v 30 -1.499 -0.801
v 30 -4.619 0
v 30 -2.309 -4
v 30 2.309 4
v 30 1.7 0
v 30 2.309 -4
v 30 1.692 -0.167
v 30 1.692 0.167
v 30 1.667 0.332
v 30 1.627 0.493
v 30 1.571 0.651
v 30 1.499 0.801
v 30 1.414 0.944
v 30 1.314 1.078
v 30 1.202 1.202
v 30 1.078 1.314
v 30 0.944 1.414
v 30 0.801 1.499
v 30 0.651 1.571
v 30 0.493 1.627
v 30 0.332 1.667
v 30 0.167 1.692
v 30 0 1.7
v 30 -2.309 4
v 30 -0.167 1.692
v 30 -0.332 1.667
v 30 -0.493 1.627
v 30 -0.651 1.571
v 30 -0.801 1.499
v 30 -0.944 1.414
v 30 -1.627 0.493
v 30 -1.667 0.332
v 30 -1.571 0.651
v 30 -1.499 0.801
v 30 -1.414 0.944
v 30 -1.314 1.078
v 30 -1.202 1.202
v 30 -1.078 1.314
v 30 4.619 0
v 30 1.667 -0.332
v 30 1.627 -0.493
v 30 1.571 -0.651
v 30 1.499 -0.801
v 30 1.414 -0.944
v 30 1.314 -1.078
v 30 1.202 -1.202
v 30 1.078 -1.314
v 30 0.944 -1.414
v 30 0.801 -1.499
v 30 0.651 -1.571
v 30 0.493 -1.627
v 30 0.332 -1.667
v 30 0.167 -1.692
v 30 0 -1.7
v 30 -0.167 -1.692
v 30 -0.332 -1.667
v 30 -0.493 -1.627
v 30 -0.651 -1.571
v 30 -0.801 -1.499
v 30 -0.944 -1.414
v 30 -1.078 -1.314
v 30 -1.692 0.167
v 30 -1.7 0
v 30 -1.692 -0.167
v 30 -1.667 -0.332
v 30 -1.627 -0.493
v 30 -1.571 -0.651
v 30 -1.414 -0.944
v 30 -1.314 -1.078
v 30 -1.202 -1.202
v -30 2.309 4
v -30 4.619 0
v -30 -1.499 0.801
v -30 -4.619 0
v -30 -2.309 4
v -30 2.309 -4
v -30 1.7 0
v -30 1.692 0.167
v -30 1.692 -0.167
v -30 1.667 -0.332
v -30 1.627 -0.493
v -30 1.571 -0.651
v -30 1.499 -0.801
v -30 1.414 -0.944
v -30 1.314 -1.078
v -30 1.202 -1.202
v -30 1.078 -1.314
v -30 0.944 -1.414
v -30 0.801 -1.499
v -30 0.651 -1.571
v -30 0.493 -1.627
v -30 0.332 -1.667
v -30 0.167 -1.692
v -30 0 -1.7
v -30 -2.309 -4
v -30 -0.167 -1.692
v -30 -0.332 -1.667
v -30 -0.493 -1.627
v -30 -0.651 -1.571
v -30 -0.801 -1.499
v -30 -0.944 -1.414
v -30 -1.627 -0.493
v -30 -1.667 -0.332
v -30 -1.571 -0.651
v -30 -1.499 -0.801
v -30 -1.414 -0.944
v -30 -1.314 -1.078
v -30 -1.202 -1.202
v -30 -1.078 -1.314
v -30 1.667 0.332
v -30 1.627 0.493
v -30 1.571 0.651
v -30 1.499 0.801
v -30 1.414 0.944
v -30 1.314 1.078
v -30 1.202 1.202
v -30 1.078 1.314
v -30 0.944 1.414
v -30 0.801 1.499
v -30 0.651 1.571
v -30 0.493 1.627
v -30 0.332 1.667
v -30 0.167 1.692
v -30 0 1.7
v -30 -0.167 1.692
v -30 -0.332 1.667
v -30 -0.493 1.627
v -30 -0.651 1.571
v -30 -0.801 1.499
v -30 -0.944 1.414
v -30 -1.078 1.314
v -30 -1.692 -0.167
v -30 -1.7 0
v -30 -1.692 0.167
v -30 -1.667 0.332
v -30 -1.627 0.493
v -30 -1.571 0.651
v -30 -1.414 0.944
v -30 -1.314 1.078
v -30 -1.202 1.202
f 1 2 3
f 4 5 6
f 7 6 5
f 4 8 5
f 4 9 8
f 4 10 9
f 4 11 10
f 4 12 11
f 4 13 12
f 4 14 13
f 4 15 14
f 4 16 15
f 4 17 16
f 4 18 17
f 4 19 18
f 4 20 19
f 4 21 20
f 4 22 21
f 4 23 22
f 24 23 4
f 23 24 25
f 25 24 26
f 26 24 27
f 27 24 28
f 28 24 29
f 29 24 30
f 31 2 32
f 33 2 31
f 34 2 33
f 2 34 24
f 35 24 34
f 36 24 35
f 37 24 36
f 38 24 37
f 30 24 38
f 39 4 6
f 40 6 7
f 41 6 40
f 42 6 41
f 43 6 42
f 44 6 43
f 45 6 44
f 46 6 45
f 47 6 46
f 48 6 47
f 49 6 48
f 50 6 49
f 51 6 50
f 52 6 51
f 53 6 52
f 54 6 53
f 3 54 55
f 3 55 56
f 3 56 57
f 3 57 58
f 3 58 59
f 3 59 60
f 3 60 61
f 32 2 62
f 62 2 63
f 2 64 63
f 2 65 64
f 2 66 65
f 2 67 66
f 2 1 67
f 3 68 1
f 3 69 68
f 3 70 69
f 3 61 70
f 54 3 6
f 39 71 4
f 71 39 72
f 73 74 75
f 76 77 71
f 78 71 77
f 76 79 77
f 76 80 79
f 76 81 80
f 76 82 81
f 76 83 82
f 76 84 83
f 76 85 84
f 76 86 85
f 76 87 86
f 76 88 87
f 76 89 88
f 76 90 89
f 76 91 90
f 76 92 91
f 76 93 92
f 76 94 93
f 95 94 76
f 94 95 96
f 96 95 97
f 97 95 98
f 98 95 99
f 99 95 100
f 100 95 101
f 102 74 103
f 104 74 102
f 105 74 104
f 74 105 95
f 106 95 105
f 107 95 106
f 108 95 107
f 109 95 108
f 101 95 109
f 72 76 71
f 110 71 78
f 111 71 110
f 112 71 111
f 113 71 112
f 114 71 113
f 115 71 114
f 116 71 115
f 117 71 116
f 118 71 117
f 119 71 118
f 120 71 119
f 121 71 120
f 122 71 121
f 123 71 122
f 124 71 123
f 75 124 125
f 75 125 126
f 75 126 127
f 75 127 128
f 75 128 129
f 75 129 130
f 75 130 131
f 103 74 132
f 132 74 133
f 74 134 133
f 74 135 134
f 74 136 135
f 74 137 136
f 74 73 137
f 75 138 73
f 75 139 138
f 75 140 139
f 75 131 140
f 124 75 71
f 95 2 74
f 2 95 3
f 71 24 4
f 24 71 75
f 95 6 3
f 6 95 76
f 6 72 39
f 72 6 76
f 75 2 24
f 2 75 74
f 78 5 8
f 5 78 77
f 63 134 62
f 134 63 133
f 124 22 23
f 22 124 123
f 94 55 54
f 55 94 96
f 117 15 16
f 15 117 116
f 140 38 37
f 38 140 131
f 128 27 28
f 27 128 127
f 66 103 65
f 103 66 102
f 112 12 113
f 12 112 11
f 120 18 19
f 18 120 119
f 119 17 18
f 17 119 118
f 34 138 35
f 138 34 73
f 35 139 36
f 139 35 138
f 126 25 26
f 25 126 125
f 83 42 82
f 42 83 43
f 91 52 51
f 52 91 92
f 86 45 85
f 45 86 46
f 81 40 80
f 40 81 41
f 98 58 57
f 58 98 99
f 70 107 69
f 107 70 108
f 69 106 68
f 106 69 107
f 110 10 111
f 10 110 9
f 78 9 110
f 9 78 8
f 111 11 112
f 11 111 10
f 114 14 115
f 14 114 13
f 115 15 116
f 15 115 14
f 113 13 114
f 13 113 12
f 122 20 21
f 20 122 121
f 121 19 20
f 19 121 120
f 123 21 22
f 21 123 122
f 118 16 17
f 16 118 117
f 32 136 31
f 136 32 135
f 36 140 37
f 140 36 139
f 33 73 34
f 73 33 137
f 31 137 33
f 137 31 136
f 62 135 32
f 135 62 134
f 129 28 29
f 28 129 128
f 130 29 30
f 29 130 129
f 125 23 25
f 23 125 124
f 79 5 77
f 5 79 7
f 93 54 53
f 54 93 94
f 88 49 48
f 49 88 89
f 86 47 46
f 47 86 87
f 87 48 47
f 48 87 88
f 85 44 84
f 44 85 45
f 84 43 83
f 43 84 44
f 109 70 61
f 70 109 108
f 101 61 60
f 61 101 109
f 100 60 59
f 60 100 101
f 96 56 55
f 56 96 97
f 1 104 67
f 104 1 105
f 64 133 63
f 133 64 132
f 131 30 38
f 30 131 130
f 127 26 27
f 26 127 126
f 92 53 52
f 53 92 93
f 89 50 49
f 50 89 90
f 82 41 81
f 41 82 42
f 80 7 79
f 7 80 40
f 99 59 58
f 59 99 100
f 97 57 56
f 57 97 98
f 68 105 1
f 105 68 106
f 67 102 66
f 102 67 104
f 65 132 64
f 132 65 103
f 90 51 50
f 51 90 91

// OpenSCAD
module hexagon(size, height) {
  boxWidth = size / sqrt(3);
  for (r = [-60, 0, 60]) rotate([0,0,r]) cube([boxWidth, size, height], true);
}

module pilar(ph = 60) {
  difference() {
    hexagon(8, ph);
    cylinder(d = 3.4, h = ph + 1, center = true, $fn = 64);
  }
}


rotate([90, 0, 90])
pilar();
